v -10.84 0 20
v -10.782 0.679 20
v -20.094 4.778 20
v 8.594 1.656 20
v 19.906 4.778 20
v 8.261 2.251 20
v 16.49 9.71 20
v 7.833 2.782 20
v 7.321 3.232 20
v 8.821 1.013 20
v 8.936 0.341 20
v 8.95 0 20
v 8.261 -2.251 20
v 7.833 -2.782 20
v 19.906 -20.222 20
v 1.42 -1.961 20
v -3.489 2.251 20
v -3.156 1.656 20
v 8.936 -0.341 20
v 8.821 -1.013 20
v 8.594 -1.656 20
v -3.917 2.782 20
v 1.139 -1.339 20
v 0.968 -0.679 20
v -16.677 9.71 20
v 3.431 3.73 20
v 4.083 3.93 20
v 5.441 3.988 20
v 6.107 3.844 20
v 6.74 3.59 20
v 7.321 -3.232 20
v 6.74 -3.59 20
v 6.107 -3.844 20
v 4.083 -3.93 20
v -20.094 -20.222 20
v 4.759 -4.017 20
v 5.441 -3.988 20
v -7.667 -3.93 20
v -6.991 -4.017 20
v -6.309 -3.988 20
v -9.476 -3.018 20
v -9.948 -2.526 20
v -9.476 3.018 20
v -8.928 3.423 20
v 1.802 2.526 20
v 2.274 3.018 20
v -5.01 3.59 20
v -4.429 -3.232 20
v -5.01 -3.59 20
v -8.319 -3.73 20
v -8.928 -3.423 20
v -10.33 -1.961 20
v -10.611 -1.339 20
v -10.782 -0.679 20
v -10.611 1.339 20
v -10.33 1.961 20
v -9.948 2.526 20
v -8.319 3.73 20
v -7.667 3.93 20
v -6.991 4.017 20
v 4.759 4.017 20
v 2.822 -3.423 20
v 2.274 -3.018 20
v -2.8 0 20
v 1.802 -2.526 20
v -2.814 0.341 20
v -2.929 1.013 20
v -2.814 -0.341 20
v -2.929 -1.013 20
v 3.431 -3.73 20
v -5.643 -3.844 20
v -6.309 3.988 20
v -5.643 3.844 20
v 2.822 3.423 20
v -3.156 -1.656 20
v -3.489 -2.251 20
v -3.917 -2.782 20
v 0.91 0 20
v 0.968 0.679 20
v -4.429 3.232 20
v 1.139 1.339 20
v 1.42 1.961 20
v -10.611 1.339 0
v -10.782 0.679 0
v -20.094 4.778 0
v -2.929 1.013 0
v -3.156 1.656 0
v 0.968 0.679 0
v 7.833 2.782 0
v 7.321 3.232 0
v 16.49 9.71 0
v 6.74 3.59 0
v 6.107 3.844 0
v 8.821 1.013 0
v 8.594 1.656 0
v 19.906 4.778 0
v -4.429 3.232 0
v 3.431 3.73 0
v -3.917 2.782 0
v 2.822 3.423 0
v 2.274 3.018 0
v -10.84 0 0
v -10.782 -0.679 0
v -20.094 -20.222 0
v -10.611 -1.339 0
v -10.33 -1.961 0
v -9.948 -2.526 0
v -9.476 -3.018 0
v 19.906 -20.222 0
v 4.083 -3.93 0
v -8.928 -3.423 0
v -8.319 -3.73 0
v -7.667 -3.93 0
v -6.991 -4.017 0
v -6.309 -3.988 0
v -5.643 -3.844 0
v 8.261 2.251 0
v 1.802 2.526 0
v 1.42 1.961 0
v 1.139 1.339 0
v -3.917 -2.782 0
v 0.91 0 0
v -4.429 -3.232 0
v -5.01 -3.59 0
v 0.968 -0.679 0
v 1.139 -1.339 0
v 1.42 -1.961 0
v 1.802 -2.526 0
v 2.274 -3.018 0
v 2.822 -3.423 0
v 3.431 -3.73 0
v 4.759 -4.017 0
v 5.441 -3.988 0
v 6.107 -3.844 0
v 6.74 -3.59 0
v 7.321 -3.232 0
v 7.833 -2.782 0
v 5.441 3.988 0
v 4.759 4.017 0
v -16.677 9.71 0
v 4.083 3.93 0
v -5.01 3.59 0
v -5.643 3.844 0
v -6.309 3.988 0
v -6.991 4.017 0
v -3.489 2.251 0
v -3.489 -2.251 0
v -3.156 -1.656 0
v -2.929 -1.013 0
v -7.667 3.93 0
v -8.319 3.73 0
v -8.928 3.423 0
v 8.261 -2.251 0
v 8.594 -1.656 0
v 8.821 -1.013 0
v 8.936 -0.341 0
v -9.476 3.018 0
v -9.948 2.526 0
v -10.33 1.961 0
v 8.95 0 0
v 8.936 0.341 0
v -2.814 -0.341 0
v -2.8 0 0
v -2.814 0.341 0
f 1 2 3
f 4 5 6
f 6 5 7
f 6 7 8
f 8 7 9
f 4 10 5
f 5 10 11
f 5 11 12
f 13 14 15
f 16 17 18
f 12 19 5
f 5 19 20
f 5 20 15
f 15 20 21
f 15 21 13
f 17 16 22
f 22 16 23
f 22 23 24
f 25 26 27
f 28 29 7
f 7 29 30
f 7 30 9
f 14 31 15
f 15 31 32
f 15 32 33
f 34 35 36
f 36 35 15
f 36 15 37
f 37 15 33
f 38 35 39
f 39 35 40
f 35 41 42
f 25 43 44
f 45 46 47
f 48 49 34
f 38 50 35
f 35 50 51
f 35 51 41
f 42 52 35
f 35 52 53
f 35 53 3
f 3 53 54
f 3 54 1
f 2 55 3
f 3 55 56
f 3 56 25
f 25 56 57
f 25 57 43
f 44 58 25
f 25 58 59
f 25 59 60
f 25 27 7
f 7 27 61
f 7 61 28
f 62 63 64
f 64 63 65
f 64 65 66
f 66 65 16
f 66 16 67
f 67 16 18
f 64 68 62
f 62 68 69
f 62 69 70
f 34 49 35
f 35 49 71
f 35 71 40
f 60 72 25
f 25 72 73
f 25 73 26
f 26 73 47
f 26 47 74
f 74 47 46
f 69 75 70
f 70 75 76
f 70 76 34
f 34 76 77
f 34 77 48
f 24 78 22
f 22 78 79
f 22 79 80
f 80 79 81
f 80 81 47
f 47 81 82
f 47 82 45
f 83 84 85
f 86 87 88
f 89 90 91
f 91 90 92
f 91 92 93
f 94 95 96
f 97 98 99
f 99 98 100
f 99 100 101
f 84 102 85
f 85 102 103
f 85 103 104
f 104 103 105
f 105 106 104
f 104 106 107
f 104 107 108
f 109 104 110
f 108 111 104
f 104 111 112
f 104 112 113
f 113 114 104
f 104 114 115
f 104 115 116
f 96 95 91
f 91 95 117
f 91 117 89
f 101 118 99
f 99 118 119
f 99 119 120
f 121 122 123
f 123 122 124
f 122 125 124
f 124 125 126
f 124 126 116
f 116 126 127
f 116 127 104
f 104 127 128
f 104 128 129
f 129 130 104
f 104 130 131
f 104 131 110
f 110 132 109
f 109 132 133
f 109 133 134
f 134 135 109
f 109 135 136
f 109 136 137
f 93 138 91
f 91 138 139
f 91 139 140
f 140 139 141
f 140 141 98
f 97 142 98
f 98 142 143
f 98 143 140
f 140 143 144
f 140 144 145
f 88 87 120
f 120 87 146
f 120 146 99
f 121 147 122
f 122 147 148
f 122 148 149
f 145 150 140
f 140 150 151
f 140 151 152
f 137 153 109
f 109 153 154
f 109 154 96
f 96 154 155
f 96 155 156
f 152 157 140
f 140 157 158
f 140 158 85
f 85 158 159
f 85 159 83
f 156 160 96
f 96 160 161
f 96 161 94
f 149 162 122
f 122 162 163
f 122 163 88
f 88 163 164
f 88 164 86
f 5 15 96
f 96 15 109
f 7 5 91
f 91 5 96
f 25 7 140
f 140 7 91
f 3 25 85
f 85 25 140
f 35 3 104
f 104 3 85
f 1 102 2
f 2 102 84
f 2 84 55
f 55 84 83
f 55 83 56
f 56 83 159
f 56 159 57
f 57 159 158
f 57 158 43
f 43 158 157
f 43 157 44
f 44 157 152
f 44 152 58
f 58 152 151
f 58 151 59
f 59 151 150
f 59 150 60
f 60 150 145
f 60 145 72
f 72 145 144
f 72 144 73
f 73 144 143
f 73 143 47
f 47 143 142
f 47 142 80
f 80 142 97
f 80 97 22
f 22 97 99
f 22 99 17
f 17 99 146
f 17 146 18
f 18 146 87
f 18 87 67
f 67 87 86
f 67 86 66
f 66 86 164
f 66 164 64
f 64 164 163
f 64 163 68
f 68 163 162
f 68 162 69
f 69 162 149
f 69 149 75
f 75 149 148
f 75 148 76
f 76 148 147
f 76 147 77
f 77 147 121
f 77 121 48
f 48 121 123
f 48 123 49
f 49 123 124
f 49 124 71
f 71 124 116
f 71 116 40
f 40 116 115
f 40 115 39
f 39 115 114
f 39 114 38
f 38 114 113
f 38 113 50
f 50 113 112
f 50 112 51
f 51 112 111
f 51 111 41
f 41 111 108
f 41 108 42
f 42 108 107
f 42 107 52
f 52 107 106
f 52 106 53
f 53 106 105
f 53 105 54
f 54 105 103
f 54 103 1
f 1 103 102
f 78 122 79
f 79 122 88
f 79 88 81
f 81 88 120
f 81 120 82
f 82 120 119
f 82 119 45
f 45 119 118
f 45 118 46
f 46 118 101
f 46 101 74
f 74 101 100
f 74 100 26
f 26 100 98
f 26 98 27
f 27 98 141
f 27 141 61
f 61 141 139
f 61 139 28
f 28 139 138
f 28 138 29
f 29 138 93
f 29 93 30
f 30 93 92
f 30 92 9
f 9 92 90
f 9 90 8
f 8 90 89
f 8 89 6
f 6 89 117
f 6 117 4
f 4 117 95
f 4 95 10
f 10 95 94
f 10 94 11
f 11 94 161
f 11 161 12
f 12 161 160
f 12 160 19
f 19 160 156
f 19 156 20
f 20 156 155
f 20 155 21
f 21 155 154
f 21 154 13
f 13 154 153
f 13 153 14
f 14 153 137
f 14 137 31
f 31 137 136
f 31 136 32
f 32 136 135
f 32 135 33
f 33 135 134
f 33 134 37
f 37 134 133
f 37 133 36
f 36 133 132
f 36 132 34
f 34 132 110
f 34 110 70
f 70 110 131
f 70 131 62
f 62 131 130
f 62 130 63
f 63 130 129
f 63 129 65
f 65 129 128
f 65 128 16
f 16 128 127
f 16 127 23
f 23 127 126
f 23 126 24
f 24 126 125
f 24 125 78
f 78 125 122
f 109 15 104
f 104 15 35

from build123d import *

# Parameters (mm, degrees)
ESBO_O1_R                = 4.020297227
RESSALTO_EXTRUS_O1_DEPTH = 20
ESBO_O2_W                = 40
ESBO_O2_H                = 20
RESSALTO_EXTRUS_O2_DEPTH = 10


with BuildPart() as part:
    # Esboço1 → Ressalto-extrusão1 (new body)
    with BuildSketch(Plane.XY):
        Polygon((19.906301529, -10.222394025), (-20.093698471, -10.222394025), (-20.093698471, 4.777605975), (-16.677218189, 9.709914003), (16.489821246, 9.709914003), (19.906301529, 4.777605975), align=None)
        with Locations((-6.819904998, 0)):
            Circle(ESBO_O1_R, mode=Mode.SUBTRACT)
        with Locations((4.930095002, 0)):
            Circle(ESBO_O1_R, mode=Mode.SUBTRACT)
    extrude(amount=RESSALTO_EXTRUS_O1_DEPTH)

    # Esboço2 → Ressalto-extrusão2 (add)
    with BuildSketch(Plane.XZ.offset(10.222394025)):
        with Locations((-0.093698471, 10)):
            Rectangle(ESBO_O2_W, ESBO_O2_H)
    extrude(amount=RESSALTO_EXTRUS_O2_DEPTH)


solid = part.part
